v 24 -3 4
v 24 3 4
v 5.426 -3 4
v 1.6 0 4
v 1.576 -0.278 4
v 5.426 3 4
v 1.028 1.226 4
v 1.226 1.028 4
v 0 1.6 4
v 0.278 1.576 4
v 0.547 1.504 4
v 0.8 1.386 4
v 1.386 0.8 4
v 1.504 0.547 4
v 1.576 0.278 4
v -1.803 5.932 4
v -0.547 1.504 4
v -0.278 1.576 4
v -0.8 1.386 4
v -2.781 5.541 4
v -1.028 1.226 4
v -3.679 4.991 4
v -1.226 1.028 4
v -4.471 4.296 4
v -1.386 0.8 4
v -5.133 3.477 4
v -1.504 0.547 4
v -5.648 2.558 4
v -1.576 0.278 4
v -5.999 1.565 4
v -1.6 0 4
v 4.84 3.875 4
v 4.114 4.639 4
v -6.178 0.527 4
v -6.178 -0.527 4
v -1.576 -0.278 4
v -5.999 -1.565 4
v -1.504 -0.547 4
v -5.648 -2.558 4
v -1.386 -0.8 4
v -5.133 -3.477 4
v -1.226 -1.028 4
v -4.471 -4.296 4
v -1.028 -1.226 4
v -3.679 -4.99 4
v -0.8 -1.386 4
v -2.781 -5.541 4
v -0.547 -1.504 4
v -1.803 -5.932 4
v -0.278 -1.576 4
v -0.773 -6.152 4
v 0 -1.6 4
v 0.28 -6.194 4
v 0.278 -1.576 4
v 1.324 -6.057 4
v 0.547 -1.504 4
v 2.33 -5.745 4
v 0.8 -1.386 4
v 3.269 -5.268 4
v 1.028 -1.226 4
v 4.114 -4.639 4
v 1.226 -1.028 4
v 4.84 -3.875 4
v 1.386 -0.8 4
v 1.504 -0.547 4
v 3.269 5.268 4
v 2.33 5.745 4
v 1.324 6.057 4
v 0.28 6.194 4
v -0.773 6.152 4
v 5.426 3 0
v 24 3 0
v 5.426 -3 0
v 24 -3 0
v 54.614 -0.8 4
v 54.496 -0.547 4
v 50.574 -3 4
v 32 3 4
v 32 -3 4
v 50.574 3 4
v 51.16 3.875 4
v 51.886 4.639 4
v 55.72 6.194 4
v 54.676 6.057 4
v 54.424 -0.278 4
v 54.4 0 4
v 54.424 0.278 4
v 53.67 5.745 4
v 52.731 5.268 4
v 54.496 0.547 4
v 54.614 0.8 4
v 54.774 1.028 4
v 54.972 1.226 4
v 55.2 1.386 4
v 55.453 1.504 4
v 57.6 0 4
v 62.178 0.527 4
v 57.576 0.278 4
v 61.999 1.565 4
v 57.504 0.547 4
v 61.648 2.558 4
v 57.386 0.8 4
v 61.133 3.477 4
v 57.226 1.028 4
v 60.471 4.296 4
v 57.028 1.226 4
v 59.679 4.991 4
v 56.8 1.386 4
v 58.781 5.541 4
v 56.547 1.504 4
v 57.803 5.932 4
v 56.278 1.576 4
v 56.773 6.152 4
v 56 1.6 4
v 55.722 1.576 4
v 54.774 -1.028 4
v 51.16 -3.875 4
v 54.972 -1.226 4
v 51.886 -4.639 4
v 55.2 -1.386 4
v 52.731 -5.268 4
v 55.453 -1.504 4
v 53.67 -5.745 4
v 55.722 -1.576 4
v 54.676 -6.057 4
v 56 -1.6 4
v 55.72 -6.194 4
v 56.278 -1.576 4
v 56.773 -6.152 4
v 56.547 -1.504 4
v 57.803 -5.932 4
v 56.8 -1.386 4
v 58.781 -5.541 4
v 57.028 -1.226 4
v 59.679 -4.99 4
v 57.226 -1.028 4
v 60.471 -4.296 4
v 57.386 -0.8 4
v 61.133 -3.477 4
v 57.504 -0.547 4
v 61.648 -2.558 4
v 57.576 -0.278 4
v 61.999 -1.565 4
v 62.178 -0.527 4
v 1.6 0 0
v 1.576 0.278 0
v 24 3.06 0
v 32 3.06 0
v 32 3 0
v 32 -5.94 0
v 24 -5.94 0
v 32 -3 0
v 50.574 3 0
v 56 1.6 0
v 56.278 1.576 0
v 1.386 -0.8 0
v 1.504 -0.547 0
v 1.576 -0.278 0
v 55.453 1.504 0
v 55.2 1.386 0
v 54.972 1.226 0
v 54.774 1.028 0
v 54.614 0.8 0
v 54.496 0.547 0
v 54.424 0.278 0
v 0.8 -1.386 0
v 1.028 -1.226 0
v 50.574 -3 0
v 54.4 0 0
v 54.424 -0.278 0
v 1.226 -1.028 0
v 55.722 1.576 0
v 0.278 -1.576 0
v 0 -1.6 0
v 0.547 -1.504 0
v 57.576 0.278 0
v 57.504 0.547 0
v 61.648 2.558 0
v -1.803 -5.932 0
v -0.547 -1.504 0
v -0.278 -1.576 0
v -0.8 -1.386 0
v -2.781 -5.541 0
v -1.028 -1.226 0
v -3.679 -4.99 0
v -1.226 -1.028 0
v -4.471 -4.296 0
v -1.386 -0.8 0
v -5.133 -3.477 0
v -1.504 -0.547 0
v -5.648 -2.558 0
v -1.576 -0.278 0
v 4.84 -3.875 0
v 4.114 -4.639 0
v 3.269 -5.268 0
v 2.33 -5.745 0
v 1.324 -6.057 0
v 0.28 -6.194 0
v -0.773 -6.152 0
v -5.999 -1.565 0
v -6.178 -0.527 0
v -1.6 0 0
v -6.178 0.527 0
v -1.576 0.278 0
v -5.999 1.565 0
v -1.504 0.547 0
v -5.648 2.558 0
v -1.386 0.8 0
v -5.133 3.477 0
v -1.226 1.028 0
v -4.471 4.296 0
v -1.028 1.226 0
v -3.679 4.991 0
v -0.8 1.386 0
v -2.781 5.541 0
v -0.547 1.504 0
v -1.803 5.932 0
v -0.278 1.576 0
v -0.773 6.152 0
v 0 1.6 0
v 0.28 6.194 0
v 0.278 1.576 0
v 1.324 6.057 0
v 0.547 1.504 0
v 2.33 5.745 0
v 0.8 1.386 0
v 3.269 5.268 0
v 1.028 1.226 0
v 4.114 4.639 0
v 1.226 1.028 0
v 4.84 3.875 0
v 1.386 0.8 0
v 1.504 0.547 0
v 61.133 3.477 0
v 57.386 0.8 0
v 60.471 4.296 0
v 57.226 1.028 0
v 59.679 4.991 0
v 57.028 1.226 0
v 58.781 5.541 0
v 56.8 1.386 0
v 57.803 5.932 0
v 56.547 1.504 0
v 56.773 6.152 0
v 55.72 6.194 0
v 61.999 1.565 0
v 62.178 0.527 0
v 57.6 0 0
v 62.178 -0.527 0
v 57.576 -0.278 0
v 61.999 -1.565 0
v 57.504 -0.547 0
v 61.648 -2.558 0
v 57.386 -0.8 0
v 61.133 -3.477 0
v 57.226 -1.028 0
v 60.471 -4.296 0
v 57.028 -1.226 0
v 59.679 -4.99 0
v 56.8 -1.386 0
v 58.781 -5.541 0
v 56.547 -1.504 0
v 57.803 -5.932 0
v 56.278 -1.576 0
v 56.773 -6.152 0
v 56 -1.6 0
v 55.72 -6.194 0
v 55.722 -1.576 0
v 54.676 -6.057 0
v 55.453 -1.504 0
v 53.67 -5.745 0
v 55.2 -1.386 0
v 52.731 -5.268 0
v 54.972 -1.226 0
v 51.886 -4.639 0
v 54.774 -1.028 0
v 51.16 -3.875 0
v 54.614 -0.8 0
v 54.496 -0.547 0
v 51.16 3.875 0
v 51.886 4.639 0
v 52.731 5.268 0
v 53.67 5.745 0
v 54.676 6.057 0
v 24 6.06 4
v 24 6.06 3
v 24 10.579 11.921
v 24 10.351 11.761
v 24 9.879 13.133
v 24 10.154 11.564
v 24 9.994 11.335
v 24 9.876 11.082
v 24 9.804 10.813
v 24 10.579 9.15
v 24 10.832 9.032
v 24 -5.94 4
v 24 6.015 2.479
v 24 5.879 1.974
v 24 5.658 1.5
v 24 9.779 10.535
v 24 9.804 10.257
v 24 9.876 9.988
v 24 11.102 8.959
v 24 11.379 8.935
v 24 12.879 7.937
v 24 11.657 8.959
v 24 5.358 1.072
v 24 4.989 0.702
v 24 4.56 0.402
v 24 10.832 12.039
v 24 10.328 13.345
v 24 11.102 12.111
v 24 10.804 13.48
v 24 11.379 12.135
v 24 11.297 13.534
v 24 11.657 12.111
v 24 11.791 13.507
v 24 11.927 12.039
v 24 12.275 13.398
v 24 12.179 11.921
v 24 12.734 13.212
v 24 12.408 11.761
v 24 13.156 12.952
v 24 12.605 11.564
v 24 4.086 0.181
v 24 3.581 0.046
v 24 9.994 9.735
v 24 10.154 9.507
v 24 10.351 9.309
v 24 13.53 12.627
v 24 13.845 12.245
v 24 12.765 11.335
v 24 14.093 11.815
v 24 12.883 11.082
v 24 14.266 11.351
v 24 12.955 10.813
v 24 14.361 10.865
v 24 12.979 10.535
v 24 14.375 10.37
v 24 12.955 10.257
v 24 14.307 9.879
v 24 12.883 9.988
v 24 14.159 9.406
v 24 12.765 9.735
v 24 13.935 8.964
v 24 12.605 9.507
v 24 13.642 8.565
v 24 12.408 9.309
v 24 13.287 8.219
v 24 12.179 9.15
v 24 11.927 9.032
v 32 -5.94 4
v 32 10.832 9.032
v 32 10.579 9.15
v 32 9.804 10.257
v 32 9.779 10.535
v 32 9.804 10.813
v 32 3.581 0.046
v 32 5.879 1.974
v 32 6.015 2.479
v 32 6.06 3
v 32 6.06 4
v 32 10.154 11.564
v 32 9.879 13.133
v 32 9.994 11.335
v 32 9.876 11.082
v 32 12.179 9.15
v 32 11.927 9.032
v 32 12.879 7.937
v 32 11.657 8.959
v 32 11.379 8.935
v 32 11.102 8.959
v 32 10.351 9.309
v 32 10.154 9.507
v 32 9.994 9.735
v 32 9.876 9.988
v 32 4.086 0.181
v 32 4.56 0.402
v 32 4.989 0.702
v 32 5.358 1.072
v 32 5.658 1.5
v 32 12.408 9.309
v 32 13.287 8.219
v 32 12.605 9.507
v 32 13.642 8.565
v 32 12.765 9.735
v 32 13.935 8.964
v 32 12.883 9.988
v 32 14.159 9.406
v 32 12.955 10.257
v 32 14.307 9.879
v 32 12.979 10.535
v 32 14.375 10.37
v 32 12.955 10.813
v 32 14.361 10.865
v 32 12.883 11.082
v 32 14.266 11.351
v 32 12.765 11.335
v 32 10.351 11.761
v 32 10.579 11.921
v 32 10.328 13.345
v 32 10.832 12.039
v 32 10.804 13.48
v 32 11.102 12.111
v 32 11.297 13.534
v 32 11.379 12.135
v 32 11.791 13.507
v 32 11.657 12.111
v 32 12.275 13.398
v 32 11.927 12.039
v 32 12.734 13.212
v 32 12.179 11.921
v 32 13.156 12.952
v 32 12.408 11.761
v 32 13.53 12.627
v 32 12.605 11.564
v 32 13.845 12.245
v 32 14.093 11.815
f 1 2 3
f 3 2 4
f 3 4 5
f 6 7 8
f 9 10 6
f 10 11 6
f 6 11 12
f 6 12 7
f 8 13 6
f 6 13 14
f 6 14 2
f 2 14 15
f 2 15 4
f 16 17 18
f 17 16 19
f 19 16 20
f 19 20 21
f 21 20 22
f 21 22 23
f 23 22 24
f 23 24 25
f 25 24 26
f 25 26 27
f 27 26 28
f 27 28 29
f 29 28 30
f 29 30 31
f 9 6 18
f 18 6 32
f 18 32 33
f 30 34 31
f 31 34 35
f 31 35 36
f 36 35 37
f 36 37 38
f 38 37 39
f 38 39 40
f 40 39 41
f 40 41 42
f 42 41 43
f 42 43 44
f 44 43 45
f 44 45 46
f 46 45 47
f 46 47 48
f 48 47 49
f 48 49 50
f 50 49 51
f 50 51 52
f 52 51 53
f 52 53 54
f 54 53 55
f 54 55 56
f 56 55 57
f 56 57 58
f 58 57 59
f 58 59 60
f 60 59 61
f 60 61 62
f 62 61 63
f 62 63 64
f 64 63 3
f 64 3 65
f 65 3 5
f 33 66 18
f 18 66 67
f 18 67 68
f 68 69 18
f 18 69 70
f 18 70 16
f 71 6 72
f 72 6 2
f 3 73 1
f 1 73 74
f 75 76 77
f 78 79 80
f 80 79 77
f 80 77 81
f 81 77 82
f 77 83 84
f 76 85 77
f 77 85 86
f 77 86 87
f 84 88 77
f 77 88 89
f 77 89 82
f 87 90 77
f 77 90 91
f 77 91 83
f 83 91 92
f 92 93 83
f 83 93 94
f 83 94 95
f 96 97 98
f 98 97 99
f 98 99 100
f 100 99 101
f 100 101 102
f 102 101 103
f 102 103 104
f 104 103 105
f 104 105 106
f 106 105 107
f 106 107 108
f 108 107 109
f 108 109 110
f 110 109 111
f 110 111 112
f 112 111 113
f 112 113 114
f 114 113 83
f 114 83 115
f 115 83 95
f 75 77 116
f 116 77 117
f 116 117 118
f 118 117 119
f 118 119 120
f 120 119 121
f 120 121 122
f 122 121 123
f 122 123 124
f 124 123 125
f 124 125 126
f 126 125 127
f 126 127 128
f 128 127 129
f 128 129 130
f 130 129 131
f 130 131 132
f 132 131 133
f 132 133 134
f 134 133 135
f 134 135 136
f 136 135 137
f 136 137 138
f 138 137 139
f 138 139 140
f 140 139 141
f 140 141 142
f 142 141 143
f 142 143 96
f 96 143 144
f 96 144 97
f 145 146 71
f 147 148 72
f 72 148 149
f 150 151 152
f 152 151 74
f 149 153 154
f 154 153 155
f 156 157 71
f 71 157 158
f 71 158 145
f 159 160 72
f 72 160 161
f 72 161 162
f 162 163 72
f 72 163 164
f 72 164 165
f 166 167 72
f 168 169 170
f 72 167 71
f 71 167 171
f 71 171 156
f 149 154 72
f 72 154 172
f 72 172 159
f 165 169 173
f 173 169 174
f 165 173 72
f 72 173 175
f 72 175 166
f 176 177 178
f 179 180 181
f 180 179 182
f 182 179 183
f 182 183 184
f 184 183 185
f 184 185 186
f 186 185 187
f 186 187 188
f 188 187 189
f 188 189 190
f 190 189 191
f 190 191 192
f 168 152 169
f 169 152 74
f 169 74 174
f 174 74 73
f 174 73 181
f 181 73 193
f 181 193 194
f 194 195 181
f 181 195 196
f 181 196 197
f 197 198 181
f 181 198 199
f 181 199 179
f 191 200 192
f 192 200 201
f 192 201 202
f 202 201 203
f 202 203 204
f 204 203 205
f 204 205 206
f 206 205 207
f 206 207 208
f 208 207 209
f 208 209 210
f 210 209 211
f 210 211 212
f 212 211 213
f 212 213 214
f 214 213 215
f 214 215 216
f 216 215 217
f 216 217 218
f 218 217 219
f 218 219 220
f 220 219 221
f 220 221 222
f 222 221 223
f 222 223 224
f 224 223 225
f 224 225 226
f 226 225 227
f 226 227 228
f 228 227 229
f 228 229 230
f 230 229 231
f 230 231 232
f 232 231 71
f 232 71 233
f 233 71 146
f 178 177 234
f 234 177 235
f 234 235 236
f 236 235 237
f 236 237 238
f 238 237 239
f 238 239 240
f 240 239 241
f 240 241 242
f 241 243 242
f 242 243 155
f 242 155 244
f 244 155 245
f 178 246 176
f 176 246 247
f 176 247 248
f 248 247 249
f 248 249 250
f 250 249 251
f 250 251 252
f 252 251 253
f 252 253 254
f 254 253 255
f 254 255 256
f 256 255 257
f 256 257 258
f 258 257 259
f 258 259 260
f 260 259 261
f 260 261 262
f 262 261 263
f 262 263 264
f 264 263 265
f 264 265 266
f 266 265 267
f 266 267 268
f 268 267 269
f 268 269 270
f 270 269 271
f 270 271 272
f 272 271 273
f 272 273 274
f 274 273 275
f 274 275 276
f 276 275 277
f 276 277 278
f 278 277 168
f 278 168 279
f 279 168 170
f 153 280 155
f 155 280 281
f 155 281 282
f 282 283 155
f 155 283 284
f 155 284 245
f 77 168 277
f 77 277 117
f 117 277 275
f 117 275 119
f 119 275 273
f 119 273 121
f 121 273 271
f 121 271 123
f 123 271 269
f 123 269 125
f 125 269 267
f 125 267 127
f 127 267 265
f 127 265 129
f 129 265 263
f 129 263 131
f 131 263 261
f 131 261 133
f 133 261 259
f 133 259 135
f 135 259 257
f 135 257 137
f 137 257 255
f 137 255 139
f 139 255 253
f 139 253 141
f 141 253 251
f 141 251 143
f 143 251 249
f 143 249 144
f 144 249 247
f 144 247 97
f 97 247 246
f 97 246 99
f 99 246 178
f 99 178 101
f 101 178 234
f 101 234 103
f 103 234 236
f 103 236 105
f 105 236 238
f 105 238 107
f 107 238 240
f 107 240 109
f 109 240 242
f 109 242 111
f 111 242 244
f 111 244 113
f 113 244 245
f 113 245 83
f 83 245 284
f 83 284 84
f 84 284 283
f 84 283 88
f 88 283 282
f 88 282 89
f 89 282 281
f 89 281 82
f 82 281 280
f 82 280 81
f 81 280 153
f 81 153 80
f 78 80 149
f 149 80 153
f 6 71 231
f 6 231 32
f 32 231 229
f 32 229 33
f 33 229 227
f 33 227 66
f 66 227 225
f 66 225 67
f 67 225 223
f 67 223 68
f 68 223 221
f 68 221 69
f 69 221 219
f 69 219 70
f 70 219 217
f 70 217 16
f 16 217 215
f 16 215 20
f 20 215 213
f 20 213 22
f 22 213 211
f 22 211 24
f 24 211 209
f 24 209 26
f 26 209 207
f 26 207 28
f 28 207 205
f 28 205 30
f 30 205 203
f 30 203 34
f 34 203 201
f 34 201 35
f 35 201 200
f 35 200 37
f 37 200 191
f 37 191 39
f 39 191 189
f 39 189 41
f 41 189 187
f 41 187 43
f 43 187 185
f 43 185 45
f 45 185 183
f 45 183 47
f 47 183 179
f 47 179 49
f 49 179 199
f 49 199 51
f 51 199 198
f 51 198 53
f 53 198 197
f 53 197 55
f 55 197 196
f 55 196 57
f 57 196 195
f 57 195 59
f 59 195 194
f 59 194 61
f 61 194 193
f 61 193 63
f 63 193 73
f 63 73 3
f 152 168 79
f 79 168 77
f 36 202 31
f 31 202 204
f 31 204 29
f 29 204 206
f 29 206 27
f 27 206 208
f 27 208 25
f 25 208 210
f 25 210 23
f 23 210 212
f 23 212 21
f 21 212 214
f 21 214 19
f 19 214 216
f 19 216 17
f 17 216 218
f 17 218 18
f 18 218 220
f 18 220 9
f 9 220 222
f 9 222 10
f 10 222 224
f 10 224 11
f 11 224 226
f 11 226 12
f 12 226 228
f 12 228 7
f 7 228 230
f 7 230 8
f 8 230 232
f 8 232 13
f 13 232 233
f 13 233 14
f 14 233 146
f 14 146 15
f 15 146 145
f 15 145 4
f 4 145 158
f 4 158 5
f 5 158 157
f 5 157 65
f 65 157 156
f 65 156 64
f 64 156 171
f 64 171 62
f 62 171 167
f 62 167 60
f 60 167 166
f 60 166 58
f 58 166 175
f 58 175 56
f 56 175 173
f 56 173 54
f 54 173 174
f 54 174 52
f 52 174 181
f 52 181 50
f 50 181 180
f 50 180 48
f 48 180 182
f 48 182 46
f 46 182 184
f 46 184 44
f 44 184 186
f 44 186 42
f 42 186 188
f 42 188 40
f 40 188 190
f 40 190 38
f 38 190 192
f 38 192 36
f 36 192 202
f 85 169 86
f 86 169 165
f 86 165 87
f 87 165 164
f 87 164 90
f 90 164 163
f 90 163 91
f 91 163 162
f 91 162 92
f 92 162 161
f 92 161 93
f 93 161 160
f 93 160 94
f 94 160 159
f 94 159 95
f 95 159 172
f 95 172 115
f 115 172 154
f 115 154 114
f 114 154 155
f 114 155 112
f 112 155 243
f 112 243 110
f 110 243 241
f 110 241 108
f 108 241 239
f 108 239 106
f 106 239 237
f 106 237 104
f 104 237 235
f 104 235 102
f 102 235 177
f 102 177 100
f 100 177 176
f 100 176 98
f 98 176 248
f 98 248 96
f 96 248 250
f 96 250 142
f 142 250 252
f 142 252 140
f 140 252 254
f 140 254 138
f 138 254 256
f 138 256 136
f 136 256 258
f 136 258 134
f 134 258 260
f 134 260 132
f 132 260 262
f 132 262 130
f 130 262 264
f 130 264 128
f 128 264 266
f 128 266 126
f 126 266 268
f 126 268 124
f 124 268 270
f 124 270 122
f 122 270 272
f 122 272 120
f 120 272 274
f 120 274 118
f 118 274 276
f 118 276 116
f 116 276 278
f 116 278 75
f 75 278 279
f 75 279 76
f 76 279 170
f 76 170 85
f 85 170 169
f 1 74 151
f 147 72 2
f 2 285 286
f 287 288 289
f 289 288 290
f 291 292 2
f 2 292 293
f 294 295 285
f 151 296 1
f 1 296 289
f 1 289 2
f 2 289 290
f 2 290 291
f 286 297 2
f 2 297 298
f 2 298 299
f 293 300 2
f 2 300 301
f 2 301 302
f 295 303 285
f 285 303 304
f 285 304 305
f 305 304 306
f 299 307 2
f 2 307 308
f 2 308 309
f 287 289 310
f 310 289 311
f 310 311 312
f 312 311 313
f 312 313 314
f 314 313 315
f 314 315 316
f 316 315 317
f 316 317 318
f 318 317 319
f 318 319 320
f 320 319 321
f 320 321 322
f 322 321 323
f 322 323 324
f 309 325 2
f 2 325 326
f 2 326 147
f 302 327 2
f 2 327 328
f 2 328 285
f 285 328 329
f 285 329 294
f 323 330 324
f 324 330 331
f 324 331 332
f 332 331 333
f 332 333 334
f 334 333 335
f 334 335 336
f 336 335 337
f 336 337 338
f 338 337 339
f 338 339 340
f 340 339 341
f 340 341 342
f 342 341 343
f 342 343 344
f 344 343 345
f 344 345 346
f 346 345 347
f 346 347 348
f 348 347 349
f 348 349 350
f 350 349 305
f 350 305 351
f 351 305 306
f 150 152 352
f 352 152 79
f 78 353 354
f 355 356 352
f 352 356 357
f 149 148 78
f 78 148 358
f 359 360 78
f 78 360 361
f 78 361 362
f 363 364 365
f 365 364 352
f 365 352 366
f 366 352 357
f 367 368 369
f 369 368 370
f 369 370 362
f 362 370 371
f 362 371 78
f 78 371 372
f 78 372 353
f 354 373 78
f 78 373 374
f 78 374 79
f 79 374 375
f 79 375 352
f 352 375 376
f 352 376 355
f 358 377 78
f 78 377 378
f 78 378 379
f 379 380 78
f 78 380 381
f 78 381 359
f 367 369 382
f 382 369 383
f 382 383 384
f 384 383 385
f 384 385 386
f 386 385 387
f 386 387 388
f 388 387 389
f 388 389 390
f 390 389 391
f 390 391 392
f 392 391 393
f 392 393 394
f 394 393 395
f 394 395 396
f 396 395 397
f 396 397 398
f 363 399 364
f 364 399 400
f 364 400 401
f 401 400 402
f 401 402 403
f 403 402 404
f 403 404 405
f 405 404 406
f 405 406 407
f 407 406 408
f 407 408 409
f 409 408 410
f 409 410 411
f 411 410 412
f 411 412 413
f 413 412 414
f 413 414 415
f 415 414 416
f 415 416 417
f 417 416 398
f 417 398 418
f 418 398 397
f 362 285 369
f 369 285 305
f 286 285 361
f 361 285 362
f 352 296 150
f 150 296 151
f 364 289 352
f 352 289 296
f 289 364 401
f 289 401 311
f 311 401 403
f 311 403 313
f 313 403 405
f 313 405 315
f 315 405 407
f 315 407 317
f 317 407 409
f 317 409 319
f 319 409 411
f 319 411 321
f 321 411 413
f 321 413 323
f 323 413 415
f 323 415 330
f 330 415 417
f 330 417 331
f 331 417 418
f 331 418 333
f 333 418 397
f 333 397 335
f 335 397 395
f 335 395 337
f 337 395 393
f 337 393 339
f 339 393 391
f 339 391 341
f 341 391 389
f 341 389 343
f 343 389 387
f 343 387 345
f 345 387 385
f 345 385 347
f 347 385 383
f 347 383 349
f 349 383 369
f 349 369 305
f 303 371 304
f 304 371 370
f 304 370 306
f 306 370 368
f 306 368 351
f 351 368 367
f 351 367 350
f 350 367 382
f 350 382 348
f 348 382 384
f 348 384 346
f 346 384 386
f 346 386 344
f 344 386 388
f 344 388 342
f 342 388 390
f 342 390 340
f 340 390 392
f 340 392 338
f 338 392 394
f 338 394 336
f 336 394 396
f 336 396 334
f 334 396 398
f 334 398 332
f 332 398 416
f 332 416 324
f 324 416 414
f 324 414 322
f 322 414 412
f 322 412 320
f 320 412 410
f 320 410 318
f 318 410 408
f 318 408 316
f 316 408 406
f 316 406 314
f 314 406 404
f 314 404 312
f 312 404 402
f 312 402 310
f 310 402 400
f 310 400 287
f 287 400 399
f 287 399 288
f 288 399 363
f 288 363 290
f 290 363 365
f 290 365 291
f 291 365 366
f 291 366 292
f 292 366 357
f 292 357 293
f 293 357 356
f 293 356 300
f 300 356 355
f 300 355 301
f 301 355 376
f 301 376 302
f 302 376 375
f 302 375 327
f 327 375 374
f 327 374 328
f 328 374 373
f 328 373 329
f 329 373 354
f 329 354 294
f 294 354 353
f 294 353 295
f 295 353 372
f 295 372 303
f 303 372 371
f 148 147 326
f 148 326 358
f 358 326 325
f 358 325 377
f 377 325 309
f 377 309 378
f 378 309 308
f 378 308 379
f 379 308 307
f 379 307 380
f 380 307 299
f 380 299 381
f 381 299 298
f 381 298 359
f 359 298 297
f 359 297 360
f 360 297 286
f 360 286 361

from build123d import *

# Parameters (mm, degrees)
CROQUIS1_R                   = 1.6
SALIENTE_EXTRUIR1_DEPTH      = 4
SALIENTE_EXTRUIR2_DEPTH      = 4
SALIENTE_EXTRUIR2_DEPTH_BACK = 4
CROQUIS2_R                   = 1.6
REDONDEO1_R                  = 3


with BuildPart() as part:
    # Croquis1 → Saliente-Extruir1 (new body)
    with BuildSketch(Plane.XY):
        with BuildLine():
            Line((5.425863987, -3), (50.574136013, -3))
            ThreePointArc((50.574136013, -3), (62.2, 0), (50.574136013, 3))
            Line((50.574136013, 3), (5.425863987, 3))
            ThreePointArc((5.425863987, 3), (-6.2, 0), (5.425863987, -3))
        make_face()
        Circle(CROQUIS1_R, mode=Mode.SUBTRACT)
        with Locations((56, 0)):
            Circle(CROQUIS1_R, mode=Mode.SUBTRACT)
    extrude(amount=SALIENTE_EXTRUIR1_DEPTH)

    # Croquis2 → Saliente-Extruir2 (add, two sides: drawn at the far end of the back side and taken through both)
    with BuildSketch(Plane(origin=(28, 0, 0), x_dir=(0, 0, -1), z_dir=(1, 0, 0)).offset(-SALIENTE_EXTRUIR2_DEPTH_BACK)):
        with BuildLine():
            Line((-4, -5.939790903), (-13.133231147, 9.879429481))
            ThreePointArc((-13.133231147, 9.879429481), (-12.035154935, 13.977505692), (-7.937078724, 12.879429481))
            Line((-7.937078724, 12.879429481), (-4, 6.060209097))
            Line((-4, 6.060209097), (0, 6.060209097))
            Line((0, 6.060209097), (0, -5.939790903))
            Line((0, -5.939790903), (-4, -5.939790903))
        make_face()
        with Locations((-10.535154935, 11.379429481)):
            Circle(CROQUIS2_R, mode=Mode.SUBTRACT)
    extrude(amount=SALIENTE_EXTRUIR2_DEPTH + SALIENTE_EXTRUIR2_DEPTH_BACK)

    # Redondeo1
    redondeo1_edges = [part.edges().sort_by_distance(p)[0] for p in [
        (28, 6.060209097, 0),
    ]]
    fillet(redondeo1_edges, radius=REDONDEO1_R)


solid = part.part
